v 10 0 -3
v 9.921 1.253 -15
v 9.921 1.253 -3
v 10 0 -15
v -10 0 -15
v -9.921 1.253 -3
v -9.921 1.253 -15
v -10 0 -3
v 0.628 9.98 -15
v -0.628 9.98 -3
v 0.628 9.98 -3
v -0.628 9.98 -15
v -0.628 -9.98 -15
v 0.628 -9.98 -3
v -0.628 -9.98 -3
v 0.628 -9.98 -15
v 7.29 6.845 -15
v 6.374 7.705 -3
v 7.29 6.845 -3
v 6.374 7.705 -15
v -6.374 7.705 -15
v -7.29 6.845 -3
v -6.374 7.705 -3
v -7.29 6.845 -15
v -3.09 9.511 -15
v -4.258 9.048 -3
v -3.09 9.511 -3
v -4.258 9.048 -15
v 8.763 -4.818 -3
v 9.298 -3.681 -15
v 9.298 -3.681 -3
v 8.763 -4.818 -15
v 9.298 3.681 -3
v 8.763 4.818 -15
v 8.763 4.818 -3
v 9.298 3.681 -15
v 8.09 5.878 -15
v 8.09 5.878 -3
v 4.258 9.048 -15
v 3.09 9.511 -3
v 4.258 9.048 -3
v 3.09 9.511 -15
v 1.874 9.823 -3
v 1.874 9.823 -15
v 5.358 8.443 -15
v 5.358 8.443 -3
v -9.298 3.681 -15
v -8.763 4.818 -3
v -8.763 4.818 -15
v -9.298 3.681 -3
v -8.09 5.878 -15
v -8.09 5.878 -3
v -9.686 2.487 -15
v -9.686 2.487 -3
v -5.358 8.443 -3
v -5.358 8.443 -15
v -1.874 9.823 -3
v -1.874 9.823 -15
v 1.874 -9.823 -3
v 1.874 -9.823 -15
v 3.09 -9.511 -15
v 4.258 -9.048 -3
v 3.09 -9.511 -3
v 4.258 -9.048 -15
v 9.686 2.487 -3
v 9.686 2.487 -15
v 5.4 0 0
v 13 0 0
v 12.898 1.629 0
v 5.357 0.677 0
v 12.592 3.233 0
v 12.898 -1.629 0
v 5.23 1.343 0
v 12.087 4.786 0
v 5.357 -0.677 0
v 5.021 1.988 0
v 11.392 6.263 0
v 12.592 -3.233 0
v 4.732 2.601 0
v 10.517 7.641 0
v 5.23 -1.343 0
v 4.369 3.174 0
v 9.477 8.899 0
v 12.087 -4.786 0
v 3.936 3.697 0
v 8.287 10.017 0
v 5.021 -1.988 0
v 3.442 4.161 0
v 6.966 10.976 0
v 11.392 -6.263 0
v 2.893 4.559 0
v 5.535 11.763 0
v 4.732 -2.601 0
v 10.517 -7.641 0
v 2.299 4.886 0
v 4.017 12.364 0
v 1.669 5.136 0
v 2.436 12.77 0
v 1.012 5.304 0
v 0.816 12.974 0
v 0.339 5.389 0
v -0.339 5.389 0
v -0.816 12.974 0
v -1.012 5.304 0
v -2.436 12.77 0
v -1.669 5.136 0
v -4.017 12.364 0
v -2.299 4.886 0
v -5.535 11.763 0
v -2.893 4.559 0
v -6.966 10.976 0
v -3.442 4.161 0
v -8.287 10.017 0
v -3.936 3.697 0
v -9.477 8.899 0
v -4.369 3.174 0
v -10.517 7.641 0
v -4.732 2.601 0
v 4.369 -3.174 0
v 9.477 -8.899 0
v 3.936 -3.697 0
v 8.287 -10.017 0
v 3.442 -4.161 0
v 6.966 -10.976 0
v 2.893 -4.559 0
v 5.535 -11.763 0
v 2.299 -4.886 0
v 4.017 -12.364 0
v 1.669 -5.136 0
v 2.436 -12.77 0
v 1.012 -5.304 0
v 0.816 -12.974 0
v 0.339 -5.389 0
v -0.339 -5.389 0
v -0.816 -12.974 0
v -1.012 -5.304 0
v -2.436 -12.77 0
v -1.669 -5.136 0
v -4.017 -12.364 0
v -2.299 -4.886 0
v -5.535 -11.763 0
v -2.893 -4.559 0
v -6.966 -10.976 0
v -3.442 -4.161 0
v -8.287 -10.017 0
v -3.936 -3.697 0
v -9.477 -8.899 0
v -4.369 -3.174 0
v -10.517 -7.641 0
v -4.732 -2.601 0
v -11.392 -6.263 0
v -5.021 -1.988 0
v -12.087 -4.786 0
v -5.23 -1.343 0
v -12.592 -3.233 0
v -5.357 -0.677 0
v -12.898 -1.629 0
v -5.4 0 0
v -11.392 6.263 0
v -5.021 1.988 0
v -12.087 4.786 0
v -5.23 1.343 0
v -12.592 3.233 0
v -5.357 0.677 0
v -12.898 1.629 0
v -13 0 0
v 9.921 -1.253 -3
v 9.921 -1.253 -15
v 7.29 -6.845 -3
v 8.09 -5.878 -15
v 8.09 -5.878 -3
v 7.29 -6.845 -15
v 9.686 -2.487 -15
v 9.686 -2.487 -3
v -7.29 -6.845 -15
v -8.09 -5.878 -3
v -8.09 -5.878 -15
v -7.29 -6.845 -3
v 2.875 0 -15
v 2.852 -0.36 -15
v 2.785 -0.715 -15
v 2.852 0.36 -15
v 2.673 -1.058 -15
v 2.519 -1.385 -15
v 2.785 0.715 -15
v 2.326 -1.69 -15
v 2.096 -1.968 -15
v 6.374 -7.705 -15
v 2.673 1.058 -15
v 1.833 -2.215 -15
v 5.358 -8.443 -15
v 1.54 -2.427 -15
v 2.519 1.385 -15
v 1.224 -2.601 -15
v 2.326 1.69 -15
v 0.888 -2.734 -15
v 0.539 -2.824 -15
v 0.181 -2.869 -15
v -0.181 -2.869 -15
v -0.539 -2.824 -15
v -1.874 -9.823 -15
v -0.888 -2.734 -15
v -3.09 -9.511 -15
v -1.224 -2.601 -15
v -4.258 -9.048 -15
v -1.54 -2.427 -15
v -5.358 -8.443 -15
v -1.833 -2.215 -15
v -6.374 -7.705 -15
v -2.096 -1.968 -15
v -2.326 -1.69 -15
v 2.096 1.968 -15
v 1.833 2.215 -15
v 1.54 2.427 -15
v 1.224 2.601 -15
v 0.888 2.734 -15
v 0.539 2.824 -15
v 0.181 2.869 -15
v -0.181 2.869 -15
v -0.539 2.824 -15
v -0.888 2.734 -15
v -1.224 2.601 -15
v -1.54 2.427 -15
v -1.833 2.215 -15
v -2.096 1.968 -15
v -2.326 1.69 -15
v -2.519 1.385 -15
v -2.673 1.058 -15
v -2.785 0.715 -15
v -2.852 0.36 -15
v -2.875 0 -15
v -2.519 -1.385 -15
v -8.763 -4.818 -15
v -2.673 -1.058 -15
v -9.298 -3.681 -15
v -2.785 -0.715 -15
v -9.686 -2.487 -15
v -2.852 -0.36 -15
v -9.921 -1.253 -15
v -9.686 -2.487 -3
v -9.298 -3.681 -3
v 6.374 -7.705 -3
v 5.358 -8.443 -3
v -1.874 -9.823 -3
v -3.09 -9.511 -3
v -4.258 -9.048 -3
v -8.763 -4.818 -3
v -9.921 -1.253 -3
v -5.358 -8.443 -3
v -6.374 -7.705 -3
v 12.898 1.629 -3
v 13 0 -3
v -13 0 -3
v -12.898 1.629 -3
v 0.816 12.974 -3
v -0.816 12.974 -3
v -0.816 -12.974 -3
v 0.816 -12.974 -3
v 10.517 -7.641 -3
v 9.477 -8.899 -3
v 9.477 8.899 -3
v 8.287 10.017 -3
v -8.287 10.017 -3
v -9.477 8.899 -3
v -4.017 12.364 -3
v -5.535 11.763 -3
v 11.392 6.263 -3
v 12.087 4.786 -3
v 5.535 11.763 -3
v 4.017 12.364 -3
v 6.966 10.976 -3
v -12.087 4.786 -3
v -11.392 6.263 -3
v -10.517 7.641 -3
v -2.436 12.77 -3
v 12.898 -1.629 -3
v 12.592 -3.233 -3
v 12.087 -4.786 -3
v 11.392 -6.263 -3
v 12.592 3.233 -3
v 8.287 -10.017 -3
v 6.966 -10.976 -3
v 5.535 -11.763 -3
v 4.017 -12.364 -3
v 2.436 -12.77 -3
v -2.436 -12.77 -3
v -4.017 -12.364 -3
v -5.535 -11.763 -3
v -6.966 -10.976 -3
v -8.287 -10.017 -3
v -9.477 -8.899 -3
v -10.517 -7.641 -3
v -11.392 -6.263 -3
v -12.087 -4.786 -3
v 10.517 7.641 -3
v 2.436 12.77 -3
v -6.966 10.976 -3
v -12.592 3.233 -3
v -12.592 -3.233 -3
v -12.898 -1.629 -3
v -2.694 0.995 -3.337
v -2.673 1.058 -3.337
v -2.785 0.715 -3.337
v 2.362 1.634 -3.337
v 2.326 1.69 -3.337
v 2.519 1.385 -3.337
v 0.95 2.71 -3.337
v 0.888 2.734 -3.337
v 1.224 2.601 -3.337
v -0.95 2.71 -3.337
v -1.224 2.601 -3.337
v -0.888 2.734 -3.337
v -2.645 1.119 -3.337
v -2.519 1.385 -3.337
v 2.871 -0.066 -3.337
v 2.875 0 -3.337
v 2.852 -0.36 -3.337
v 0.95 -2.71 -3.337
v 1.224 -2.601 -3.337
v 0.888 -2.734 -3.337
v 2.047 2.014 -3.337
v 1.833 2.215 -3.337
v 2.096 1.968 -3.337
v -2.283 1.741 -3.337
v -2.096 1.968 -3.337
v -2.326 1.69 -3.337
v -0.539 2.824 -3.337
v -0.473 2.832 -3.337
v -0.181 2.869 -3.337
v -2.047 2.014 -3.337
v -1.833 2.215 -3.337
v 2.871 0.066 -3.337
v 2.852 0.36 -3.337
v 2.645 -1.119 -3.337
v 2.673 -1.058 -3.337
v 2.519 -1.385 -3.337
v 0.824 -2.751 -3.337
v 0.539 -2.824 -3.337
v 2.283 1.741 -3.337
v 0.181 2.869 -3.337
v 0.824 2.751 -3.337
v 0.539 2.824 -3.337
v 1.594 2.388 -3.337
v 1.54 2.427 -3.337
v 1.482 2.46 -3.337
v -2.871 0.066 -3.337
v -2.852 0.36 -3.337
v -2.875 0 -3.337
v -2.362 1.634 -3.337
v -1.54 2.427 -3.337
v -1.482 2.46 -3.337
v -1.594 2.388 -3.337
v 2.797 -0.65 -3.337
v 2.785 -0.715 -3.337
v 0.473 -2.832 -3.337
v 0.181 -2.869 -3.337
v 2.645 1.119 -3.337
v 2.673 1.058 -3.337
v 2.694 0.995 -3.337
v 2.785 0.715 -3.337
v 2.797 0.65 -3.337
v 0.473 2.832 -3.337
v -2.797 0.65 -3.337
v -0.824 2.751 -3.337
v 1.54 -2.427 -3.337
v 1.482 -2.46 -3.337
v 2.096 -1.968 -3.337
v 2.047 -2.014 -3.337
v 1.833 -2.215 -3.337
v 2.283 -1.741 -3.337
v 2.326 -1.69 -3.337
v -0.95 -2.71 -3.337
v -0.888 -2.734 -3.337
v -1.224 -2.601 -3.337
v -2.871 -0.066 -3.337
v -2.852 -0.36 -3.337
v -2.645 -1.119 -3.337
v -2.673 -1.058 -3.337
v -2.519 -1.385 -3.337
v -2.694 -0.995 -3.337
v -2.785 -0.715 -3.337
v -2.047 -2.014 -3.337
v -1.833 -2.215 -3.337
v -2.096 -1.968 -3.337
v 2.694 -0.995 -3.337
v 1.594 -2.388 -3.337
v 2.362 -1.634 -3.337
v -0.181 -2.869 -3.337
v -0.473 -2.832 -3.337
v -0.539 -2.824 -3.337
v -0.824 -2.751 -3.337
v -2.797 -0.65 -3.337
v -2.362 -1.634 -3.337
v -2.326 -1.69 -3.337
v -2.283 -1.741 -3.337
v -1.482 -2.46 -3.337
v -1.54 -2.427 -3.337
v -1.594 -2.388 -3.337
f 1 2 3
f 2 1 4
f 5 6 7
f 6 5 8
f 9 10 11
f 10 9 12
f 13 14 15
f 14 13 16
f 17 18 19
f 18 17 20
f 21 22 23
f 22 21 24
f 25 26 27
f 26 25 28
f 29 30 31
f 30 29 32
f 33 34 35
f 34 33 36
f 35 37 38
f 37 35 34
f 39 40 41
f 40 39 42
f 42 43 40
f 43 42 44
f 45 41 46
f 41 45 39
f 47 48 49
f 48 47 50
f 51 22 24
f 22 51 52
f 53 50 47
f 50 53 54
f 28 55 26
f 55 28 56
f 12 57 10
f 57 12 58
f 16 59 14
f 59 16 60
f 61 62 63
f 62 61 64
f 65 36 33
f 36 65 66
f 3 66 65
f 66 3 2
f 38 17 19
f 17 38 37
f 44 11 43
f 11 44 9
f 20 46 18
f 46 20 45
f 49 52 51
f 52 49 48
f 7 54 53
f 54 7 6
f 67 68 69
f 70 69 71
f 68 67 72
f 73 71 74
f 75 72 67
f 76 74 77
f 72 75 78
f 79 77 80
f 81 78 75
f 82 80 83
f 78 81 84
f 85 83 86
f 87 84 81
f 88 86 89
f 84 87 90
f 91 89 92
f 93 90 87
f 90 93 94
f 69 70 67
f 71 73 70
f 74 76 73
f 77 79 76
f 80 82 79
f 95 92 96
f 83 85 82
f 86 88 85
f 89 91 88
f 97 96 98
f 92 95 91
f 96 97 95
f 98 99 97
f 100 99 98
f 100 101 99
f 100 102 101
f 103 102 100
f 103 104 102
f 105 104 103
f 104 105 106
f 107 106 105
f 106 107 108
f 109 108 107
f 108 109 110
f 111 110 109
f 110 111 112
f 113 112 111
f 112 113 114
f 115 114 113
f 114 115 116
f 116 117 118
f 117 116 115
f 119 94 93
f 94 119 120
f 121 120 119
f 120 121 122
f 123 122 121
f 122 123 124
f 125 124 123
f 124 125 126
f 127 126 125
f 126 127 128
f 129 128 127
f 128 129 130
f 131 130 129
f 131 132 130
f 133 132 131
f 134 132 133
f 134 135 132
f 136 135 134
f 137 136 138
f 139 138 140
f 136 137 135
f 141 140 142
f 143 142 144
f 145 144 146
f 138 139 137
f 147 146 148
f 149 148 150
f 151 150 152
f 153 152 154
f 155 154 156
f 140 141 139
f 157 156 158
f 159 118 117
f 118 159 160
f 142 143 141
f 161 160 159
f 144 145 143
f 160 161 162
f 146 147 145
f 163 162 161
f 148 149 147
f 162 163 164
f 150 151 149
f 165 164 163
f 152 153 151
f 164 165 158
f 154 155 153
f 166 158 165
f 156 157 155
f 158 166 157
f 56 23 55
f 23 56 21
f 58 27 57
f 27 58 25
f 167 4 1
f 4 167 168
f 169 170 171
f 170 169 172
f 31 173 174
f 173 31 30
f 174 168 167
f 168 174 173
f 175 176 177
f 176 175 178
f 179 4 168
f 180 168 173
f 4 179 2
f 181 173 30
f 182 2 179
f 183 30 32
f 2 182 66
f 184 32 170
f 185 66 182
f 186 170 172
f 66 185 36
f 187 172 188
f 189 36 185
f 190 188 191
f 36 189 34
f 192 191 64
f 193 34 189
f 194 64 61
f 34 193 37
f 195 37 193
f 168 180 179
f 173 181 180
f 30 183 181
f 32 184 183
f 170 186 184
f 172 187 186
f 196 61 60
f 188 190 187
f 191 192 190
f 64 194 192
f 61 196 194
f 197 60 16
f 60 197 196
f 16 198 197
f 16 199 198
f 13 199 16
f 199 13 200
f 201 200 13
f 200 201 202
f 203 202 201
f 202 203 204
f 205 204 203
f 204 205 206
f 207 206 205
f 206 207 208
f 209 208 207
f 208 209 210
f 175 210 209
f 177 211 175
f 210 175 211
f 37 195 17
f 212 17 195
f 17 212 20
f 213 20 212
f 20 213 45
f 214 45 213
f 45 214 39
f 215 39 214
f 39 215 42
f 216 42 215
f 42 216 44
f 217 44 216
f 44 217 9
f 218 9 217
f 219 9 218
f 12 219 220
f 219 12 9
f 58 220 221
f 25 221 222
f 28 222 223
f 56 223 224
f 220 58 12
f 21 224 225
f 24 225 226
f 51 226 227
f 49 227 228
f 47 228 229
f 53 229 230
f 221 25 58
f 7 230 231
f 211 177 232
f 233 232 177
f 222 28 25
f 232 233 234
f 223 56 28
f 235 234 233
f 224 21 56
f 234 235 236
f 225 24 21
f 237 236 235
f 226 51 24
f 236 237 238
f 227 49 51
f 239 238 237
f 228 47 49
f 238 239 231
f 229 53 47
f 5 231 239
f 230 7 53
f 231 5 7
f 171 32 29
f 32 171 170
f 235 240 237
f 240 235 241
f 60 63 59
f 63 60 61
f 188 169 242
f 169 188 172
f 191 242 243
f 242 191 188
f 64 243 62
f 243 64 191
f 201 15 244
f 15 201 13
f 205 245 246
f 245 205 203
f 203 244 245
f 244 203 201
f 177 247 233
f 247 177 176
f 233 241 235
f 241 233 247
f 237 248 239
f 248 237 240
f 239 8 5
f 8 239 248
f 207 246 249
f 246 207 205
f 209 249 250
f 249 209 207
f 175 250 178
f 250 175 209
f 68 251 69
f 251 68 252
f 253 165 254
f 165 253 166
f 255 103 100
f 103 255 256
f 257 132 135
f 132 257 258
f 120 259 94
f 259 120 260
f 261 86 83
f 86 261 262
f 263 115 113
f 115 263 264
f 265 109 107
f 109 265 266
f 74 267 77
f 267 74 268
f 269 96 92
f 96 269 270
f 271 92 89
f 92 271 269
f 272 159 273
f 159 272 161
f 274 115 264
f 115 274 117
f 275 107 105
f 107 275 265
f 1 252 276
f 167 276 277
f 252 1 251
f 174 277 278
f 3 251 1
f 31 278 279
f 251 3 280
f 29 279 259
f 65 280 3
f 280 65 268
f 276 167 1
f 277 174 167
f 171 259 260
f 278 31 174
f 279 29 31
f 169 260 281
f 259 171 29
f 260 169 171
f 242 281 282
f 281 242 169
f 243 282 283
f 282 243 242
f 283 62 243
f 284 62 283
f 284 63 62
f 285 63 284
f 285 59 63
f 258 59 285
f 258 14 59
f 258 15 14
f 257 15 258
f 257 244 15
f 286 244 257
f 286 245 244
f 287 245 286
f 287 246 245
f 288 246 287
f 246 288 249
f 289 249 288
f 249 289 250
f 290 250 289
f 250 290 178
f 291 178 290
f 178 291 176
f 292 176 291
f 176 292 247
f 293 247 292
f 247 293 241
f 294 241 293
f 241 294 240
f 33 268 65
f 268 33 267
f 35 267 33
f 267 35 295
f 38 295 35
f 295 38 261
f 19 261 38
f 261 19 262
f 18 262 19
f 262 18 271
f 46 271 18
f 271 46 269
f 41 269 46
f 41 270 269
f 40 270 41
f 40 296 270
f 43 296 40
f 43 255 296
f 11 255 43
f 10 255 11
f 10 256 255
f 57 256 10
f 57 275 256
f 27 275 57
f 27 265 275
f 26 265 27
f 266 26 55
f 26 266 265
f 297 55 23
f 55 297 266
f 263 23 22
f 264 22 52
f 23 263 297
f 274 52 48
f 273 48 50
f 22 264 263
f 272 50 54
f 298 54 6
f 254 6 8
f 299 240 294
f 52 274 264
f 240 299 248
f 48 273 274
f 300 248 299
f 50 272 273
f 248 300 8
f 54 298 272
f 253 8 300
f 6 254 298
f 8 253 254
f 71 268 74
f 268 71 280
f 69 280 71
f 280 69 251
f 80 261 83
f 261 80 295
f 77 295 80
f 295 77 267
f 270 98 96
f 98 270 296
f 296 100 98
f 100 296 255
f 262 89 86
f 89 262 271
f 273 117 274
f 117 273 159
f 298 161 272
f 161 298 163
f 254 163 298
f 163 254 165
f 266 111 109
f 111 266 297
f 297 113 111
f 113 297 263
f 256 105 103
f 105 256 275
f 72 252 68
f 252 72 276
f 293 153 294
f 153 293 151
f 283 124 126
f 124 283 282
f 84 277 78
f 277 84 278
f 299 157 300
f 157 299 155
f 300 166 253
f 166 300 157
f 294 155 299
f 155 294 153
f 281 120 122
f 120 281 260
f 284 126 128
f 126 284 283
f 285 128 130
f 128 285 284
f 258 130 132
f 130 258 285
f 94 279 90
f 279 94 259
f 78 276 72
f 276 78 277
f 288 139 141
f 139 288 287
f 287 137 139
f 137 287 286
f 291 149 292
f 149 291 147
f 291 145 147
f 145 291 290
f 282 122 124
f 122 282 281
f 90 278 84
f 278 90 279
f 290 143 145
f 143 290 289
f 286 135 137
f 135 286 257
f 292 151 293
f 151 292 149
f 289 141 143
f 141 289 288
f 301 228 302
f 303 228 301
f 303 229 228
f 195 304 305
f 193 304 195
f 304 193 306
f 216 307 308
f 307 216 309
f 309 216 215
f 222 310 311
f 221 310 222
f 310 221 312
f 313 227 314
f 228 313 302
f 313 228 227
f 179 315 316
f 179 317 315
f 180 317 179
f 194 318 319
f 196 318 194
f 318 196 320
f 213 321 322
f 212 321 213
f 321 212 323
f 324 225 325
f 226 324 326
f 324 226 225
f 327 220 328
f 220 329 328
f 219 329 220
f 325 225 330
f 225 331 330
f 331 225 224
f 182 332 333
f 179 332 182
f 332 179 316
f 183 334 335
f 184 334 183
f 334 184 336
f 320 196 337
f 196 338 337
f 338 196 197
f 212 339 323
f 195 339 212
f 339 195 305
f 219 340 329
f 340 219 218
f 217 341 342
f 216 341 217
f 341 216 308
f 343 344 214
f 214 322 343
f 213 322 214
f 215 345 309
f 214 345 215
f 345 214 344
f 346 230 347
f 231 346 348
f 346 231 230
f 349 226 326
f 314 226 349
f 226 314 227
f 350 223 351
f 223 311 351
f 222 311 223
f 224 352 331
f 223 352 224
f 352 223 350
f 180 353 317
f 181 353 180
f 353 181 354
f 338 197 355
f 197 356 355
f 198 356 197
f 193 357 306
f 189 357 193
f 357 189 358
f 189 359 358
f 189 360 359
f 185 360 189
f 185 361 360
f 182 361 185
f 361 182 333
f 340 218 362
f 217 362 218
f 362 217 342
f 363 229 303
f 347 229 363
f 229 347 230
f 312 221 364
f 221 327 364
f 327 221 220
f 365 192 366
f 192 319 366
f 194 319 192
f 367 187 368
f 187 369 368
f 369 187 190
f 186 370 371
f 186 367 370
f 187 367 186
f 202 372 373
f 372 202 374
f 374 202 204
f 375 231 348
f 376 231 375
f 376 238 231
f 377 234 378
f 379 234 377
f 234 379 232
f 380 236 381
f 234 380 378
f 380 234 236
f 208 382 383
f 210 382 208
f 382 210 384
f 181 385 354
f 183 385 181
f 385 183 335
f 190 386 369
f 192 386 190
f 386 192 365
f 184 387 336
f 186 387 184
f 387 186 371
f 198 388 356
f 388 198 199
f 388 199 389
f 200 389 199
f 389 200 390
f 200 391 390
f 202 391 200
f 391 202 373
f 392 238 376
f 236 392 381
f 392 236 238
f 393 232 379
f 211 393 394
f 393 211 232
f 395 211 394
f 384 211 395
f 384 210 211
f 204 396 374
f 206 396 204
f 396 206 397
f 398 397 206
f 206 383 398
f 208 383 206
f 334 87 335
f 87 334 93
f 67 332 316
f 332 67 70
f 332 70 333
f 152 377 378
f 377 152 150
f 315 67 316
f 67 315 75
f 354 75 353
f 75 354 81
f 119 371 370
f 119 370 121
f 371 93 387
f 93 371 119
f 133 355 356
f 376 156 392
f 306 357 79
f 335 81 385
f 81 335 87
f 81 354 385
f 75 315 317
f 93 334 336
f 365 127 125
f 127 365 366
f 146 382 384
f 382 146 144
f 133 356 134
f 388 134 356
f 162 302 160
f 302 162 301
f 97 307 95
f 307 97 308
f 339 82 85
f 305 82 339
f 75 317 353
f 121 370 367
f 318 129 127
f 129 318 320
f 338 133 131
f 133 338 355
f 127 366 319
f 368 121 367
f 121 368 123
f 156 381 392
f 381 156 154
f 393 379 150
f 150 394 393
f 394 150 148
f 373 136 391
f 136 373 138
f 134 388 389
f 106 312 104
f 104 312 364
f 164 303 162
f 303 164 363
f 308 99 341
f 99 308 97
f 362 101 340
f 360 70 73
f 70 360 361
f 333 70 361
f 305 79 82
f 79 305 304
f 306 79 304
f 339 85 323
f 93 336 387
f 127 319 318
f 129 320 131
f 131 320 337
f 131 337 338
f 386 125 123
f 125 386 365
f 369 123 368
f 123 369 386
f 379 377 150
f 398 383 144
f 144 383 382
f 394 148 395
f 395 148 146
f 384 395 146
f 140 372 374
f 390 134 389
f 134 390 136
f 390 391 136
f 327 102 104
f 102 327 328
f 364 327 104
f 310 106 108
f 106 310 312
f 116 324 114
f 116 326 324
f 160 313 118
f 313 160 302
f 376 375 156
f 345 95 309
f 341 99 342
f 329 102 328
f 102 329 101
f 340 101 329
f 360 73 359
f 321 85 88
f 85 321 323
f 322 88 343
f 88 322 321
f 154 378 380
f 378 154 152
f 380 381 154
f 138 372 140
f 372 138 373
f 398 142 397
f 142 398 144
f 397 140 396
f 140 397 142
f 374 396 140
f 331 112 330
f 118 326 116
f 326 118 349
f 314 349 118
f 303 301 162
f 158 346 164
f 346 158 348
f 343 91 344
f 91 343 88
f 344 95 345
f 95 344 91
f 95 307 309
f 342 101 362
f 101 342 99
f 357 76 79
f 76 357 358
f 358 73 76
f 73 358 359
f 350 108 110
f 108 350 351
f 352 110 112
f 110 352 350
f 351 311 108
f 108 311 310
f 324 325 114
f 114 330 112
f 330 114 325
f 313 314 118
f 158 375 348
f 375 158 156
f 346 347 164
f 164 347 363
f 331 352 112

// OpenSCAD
$fn = 50;


difference() {
	union() {
		translate(v = [0, 0, -15.0000000000]) {
			cylinder(h = 15, r = 10.0000000000);
		}
		translate(v = [0, 0, -3.0000000000]) {
			cylinder(h = 3, r = 13.0000000000);
		}
	}
	union() {
		translate(v = [0, 0, 0]) {
			rotate(a = [0, 0, 0]) {
				difference() {
					union() {
						translate(v = [0, 0, -15.0000000000]) {
							cylinder(h = 15, r = 2.6000000000);
						}
						translate(v = [0, 0, -15.0000000000]) {
							cylinder(h = 15, r = 2.8750000000);
						}
						translate(v = [0, 0, -3.7000000000]) {
							cylinder(h = 3.7000000000, r = 10.0000000000, r1 = 2.6000000000, r2 = 5.4000000000);
						}
						translate(v = [0, 0, -15.0000000000]) {
							cylinder(h = 15, r = 2.6000000000);
						}
					}
					union();
				}
			}
		}
	}
}
